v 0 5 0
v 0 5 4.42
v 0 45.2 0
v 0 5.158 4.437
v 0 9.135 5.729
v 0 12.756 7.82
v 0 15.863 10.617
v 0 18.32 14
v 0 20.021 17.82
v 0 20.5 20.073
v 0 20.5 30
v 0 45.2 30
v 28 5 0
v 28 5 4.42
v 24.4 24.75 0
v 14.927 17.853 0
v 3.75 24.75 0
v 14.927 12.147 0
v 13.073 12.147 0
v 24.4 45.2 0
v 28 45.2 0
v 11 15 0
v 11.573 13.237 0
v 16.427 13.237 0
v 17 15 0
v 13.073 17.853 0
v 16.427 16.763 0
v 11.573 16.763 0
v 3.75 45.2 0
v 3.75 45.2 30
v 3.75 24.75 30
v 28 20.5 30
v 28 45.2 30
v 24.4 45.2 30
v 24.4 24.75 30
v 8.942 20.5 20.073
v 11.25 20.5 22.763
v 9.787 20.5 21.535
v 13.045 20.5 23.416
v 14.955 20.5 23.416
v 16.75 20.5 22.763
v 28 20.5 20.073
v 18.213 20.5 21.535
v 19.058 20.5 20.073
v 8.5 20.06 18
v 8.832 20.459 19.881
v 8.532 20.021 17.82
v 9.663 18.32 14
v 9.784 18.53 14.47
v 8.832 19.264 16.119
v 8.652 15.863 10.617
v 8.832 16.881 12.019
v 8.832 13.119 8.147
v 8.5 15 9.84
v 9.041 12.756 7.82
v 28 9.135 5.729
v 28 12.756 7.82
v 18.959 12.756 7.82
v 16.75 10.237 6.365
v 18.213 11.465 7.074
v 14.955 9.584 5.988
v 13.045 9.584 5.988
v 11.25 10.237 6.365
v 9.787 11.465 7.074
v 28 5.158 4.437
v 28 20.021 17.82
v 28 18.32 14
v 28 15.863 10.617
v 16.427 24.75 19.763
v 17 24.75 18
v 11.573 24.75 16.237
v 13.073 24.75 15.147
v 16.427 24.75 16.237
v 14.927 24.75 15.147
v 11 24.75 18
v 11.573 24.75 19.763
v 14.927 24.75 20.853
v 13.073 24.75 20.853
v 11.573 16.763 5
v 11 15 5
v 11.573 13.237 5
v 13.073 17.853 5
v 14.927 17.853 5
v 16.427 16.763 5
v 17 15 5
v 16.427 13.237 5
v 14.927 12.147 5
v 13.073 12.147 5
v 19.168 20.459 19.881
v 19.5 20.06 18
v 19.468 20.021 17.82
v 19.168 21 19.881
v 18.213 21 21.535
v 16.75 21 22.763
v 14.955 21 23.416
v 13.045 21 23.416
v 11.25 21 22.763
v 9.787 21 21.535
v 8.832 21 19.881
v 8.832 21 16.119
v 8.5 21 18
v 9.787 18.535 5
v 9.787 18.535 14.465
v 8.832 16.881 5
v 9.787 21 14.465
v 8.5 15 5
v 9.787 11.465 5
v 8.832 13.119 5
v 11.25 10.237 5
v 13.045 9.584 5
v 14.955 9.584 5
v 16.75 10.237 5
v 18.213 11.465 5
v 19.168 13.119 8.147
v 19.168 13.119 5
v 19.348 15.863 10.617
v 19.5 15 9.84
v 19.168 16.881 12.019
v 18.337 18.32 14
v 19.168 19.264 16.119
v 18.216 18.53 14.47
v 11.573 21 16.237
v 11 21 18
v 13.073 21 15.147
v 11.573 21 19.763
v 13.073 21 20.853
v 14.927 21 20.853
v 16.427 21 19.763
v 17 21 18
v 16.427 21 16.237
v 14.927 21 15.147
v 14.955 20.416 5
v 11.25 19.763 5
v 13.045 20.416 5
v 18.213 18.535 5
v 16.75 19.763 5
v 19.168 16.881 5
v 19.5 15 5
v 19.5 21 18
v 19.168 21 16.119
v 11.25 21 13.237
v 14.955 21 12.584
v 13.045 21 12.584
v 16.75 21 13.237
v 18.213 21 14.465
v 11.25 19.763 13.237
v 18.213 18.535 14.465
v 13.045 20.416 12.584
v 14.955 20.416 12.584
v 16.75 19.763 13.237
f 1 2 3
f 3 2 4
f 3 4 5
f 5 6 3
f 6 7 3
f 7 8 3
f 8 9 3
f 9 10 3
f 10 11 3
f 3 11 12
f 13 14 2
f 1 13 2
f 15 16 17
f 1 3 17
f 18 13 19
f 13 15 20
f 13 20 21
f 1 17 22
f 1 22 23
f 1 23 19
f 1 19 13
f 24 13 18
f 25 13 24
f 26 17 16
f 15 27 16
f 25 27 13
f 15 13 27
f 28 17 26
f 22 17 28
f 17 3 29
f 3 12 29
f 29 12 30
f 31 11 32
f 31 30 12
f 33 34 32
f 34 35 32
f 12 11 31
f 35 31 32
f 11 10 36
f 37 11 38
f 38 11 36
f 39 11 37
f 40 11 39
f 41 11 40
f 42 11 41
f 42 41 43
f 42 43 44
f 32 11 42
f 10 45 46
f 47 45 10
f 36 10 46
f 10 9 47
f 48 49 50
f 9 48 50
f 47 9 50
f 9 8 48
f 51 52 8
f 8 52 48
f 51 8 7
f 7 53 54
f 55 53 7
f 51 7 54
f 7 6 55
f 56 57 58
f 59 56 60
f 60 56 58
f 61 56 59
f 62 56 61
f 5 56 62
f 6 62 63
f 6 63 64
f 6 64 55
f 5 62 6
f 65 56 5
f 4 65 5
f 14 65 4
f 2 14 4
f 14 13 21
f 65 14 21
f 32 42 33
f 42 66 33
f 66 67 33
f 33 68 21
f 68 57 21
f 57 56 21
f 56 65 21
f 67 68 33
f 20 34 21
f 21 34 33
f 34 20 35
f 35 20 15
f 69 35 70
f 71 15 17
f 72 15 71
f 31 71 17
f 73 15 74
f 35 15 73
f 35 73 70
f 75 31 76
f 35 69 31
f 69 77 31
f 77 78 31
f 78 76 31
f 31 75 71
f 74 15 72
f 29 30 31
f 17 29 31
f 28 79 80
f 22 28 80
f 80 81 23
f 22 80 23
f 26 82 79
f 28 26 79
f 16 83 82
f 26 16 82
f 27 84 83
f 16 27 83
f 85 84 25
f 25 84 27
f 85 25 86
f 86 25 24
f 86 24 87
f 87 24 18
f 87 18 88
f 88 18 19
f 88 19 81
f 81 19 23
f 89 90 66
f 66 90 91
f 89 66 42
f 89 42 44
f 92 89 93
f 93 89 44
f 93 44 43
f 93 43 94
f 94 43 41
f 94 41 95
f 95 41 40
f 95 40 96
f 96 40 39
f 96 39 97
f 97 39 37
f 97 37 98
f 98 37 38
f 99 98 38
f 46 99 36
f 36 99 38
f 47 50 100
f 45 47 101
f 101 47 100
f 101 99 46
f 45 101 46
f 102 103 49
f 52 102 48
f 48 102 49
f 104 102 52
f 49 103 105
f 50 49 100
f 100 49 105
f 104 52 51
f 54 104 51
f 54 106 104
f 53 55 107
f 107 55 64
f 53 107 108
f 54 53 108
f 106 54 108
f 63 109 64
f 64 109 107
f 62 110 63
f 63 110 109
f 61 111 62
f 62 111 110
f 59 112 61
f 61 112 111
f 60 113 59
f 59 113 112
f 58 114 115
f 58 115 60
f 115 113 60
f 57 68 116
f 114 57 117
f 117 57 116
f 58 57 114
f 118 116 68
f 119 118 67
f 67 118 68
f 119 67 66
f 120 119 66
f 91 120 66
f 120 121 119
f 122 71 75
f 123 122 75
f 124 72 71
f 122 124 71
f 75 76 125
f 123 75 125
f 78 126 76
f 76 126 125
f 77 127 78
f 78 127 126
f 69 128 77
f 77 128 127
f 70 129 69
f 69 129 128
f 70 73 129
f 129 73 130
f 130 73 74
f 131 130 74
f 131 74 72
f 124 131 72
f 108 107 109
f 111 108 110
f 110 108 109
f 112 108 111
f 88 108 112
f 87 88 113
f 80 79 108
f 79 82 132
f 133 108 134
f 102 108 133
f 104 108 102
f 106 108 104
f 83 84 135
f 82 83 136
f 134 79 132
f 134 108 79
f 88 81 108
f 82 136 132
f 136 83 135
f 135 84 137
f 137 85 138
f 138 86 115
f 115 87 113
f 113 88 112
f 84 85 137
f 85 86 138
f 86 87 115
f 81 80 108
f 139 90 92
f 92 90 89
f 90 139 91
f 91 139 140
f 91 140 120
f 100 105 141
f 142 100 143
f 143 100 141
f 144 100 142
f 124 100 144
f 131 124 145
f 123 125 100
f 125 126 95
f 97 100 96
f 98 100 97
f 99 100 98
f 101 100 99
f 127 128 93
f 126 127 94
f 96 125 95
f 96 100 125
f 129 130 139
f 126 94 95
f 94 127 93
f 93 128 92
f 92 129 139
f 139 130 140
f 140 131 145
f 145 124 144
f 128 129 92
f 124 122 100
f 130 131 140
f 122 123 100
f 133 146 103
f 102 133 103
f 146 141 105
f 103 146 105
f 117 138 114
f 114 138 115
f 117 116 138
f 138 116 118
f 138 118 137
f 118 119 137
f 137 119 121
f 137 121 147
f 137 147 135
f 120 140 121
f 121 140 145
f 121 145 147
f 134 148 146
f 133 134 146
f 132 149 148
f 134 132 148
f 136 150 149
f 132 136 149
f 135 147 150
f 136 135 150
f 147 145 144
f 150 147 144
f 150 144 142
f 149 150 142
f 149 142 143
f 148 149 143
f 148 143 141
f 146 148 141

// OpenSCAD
// Y frame brace for Wilson TS
// by sgraber

beam_size = 20;
smidge = .65; // this is the amount needed for built-in slicing error (needs to be 
              // about your nozzle width, maybe a little more so they aren't too tight)

module fillet() {
	difference() {
		cube(size=[20+8,20,20]);
		rotate([0,90,0]) translate([-20,0.5,0]) cylinder(r=10*2, h=30);
	}
}

bracket();

module bracket() {
 difference() {
	union() {
		cube(size=[beam_size+8,45,4]);
		translate([0,70/2-29/2,0]) cube(size=[beam_size+8,beam_size + 4.7,30]);
		translate([0,0.5,4]) fillet();
		//translate([0,69.5,4]) mirror([0,1,0]) fillet();
	}
	#translate([-0.25+4,70/2-20.5/2,-1]) cube(size=[beam_size + smidge,beam_size + 2,40]);
	translate([10+4,7+8,-5]) cylinder(r=3,h=50);
	translate([10+4,7+8,5]) #cylinder(r=5.5,h=50);
	translate([10+4,63,-5]) cylinder(r=3,h=50);
	translate([10+4,63,4]) cylinder(r=5,h=50);
	#cube(size=[40,5,10]);

	translate([10+4,70,10+8]) rotate([90,0,0]) cylinder(r=3,h=70);
	translate([10+4,21,10+8]) rotate([90,0,0]) #cylinder(r=5.5,h=70);
	translate([10+4,25+70,10+8]) rotate([90,0,0]) cylinder(r=5,h=43);
 }
}
